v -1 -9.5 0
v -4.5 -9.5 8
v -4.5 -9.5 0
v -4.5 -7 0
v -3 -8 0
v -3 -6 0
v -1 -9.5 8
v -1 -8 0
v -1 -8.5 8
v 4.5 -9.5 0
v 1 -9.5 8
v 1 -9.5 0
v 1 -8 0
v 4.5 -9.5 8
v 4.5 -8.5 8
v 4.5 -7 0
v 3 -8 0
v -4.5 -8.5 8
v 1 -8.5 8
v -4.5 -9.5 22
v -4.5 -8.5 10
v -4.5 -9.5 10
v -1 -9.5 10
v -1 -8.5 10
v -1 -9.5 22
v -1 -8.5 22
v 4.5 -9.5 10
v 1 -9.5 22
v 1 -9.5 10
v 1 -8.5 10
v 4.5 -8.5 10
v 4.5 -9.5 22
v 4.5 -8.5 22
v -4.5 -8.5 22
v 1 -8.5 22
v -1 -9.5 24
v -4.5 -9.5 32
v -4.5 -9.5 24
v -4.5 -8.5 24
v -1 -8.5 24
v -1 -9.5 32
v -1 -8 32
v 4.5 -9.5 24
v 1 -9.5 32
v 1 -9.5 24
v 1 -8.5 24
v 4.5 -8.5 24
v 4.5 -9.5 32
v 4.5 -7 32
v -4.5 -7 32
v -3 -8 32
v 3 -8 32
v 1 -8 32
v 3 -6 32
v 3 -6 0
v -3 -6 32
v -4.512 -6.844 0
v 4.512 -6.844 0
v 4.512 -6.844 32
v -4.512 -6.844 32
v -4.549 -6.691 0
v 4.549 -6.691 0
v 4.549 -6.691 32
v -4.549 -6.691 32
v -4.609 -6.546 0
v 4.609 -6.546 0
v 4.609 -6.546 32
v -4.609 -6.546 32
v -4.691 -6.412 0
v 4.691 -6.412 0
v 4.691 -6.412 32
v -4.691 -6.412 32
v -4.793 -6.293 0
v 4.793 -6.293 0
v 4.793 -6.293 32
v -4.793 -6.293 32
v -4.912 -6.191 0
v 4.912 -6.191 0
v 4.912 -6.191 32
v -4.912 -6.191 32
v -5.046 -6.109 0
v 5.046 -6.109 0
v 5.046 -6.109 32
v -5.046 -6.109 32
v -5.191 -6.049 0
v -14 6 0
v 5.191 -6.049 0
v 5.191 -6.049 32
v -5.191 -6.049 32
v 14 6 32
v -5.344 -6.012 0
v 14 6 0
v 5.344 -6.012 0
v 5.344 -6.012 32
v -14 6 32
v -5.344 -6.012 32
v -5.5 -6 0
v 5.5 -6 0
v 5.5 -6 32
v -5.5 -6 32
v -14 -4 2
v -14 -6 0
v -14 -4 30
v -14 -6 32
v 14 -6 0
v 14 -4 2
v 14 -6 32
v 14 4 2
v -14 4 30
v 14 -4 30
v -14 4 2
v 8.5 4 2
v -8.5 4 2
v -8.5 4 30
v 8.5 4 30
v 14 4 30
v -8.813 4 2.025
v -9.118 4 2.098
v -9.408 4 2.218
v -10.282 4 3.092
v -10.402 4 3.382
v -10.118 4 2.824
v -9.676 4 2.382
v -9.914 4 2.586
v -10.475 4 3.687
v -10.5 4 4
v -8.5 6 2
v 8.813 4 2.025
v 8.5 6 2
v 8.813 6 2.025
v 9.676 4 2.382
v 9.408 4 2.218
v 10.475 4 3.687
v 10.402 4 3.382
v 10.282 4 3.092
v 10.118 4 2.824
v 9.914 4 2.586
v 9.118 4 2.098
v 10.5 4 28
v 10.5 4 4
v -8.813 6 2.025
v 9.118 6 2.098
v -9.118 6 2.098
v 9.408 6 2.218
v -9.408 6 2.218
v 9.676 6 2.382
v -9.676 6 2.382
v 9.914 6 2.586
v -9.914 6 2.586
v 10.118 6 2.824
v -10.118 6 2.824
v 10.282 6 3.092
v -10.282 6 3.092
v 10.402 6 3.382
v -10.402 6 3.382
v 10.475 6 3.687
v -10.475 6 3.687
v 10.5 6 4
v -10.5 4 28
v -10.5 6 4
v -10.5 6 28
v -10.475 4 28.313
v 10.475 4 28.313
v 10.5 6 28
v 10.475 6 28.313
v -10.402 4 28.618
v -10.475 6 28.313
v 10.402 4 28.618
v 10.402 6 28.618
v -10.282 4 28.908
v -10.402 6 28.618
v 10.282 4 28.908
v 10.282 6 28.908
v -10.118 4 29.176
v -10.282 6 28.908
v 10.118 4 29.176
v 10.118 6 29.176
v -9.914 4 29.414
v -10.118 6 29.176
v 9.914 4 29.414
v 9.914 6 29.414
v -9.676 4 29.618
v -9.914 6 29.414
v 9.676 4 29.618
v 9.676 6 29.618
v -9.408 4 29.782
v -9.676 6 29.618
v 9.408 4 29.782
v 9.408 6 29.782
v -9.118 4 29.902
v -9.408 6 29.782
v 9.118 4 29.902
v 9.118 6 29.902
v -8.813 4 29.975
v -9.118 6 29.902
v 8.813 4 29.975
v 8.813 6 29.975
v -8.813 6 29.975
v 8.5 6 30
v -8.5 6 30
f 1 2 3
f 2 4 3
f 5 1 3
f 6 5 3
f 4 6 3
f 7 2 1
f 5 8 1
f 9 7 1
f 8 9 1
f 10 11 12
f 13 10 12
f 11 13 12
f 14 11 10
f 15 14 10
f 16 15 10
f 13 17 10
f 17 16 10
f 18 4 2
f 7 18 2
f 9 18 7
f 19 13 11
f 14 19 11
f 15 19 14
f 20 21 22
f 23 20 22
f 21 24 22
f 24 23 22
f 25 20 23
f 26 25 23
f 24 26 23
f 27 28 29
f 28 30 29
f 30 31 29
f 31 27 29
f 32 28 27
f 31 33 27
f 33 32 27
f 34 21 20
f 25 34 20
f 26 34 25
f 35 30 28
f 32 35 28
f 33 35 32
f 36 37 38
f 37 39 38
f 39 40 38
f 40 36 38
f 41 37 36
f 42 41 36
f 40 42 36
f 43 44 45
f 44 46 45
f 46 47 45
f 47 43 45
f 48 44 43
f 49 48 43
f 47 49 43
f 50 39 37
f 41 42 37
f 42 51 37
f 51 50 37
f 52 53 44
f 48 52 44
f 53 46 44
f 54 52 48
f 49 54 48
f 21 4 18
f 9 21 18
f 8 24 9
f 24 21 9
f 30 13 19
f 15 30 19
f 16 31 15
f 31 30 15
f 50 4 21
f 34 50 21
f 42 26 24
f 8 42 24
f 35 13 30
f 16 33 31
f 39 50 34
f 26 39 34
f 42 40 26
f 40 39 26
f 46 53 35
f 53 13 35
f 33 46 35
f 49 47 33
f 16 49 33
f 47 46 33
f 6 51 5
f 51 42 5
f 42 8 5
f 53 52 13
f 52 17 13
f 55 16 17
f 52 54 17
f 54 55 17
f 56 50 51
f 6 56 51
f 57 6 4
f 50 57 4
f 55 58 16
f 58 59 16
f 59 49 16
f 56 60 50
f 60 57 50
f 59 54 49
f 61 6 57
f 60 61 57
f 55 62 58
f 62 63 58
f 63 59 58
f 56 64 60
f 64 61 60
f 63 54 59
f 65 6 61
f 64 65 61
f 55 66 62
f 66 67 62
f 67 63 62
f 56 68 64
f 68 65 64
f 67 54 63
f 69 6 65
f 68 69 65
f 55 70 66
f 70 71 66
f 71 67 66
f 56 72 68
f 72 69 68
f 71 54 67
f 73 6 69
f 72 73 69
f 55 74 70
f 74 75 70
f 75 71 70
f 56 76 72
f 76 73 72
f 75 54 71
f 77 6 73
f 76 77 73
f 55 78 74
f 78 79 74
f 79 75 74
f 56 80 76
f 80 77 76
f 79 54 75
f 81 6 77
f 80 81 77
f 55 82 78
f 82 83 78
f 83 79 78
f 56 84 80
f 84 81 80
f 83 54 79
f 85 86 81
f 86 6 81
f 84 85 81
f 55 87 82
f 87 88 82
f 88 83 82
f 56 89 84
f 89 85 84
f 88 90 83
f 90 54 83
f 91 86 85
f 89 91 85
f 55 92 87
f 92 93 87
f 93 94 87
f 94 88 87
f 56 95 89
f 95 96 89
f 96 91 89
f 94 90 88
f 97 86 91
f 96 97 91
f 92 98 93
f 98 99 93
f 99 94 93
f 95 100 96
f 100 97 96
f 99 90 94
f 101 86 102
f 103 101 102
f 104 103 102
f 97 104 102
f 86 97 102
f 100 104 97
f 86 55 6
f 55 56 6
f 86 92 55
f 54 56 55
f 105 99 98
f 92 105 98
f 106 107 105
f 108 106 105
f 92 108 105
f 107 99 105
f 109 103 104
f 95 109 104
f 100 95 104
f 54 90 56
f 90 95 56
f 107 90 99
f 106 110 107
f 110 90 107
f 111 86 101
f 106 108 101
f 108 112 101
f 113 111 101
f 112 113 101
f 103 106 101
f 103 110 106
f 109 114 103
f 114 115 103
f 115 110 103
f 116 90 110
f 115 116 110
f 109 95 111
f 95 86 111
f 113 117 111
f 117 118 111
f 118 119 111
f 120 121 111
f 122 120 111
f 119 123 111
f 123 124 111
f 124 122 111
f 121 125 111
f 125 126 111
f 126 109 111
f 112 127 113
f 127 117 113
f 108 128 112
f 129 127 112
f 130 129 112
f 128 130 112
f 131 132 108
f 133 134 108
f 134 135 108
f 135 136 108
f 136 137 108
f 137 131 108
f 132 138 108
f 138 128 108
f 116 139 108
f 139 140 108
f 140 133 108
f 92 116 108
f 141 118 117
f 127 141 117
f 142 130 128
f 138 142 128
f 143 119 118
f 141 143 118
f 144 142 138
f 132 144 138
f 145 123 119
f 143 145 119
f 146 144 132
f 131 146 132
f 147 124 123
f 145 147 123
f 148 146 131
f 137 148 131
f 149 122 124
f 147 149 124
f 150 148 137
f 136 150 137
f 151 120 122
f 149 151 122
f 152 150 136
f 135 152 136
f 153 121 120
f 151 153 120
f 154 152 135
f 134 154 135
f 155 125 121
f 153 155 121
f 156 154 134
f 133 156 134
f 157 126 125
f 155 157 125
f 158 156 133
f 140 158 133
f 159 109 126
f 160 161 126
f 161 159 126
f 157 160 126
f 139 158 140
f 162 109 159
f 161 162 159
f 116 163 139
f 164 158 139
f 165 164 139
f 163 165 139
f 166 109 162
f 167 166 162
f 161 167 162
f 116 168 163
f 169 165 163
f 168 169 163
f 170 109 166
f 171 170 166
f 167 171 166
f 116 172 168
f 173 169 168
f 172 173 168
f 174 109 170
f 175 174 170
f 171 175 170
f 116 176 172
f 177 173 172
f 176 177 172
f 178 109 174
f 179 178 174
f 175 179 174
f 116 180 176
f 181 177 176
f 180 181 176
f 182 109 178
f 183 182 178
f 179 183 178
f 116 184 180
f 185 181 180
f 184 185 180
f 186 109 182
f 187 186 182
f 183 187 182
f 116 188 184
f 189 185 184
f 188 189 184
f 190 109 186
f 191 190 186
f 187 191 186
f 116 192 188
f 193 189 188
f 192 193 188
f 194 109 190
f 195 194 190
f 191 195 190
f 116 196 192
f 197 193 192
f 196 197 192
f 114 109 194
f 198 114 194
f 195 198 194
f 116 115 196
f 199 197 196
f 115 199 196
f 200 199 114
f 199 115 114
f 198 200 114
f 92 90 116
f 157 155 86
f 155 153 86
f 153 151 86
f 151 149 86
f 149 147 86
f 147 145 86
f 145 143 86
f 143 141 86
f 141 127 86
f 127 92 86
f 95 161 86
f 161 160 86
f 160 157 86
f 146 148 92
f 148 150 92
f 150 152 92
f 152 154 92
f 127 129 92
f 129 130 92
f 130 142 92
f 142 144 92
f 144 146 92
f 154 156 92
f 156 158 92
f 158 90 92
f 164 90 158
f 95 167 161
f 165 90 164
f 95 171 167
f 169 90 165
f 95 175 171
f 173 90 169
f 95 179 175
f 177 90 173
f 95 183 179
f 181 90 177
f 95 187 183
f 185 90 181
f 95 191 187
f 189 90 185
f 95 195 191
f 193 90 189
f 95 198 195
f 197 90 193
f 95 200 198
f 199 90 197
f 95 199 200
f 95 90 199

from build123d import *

# Parameters (mm, degrees)
SKETCH_1_W          = 28
SKETCH_1_H          = 12
SKETCH_1_W_2        = 9
SKETCH_1_H_2        = 3.5
EXTRUDE_1_DEPTH     = 32
SKETCH_2_W          = 1
SKETCH_2_H          = 1.5
CUT_EXTRUDE_1_DEPTH = 37.197375595
SKETCH_3_W          = 2
SKETCH_3_H          = 1
CUT_EXTRUDE_2_DEPTH = 39.164119275
FILLET_1_R          = 1
SKETCH_6_W          = 28
SKETCH_6_H          = 8
CUT_EXTRUDE_5_DEPTH = 44.568910934
CUT_EXTRUDE_4_REACH = 40.213
SKETCH_5_W          = 21
SKETCH_5_H          = 28
FILLET_2_R          = 2


with BuildPart() as part:
    # 草图1 → 凸台-拉伸1 (new body)
    with BuildSketch(Plane.XY):
        Rectangle(SKETCH_1_W, SKETCH_1_H)
        with Locations((0, -7.75)):
            Rectangle(SKETCH_1_W_2, SKETCH_1_H_2)
    extrude(amount=EXTRUDE_1_DEPTH)

    # 草图2 → 切除-拉伸1 (cut, through all)
    with BuildSketch(Plane(origin=(0, 0, 0), x_dir=(-1, 0, 0), z_dir=(0, 0, -1))):
        Polygon((0, -6), (-3, -6), (-3, -8), (-1, -8), (0, -8), align=None)
        Polygon((3, -6), (0, -6), (0, -8), (1, -8), (3, -8), align=None)
        with Locations((-0.5, -8.75)):
            Rectangle(SKETCH_2_W, SKETCH_2_H)
        with Locations((0.5, -8.75)):
            Rectangle(SKETCH_2_W, SKETCH_2_H)
    extrude(amount=-CUT_EXTRUDE_1_DEPTH, mode=Mode.SUBTRACT)

    # 草图3 → 切除-拉伸2 (cut, through all)
    with BuildSketch(Plane.ZY.offset(4.5)):
        with Locations((9, -9)):
            Rectangle(SKETCH_3_W, SKETCH_3_H)
        with Locations((23, -9)):
            Rectangle(SKETCH_3_W, SKETCH_3_H)
    extrude(amount=-CUT_EXTRUDE_2_DEPTH, mode=Mode.SUBTRACT)

    # 圆角1
    fillet_1_edges = [part.edges().sort_by_distance(p)[0] for p in [
        (4.5, -6, 16),
        (-4.5, -6, 16),
    ]]
    fillet(fillet_1_edges, radius=FILLET_1_R)

    # 草图6 → 切除-拉伸5 (cut, through all)
    with BuildSketch(Plane(origin=(14, 0, 0), x_dir=(0, 0, -1), z_dir=(1, 0, 0))):
        with Locations((-16, 0)):
            Rectangle(SKETCH_6_W, SKETCH_6_H)
    extrude(amount=-CUT_EXTRUDE_5_DEPTH, mode=Mode.SUBTRACT)

    # 草图5 → 切除-拉伸4 (cut, up to next)
    with BuildSketch(Plane(origin=(0, 6, 0), x_dir=(1, 0, 0), z_dir=(0, 1, 0)), mode=Mode.PRIVATE) as cut_extrude_4_sk1:
        with Locations((0, -16)):
            Rectangle(SKETCH_5_W, SKETCH_5_H)
    cut_extrude_4_tool1 = extrude(cut_extrude_4_sk1.sketch, amount=-CUT_EXTRUDE_4_REACH, mode=Mode.PRIVATE) & part.part
    add(cut_extrude_4_tool1.solids().sort_by_distance((0, 6, 16))[0], mode=Mode.SUBTRACT)

    # 圆角2
    fillet_2_edges = [part.edges().sort_by_distance(p)[0] for p in [
        (10.5, 5, 30),
        (10.5, 5, 2),
        (-10.5, 5, 2),
        (-10.5, 5, 30),
    ]]
    fillet(fillet_2_edges, radius=FILLET_2_R)


solid = part.part
